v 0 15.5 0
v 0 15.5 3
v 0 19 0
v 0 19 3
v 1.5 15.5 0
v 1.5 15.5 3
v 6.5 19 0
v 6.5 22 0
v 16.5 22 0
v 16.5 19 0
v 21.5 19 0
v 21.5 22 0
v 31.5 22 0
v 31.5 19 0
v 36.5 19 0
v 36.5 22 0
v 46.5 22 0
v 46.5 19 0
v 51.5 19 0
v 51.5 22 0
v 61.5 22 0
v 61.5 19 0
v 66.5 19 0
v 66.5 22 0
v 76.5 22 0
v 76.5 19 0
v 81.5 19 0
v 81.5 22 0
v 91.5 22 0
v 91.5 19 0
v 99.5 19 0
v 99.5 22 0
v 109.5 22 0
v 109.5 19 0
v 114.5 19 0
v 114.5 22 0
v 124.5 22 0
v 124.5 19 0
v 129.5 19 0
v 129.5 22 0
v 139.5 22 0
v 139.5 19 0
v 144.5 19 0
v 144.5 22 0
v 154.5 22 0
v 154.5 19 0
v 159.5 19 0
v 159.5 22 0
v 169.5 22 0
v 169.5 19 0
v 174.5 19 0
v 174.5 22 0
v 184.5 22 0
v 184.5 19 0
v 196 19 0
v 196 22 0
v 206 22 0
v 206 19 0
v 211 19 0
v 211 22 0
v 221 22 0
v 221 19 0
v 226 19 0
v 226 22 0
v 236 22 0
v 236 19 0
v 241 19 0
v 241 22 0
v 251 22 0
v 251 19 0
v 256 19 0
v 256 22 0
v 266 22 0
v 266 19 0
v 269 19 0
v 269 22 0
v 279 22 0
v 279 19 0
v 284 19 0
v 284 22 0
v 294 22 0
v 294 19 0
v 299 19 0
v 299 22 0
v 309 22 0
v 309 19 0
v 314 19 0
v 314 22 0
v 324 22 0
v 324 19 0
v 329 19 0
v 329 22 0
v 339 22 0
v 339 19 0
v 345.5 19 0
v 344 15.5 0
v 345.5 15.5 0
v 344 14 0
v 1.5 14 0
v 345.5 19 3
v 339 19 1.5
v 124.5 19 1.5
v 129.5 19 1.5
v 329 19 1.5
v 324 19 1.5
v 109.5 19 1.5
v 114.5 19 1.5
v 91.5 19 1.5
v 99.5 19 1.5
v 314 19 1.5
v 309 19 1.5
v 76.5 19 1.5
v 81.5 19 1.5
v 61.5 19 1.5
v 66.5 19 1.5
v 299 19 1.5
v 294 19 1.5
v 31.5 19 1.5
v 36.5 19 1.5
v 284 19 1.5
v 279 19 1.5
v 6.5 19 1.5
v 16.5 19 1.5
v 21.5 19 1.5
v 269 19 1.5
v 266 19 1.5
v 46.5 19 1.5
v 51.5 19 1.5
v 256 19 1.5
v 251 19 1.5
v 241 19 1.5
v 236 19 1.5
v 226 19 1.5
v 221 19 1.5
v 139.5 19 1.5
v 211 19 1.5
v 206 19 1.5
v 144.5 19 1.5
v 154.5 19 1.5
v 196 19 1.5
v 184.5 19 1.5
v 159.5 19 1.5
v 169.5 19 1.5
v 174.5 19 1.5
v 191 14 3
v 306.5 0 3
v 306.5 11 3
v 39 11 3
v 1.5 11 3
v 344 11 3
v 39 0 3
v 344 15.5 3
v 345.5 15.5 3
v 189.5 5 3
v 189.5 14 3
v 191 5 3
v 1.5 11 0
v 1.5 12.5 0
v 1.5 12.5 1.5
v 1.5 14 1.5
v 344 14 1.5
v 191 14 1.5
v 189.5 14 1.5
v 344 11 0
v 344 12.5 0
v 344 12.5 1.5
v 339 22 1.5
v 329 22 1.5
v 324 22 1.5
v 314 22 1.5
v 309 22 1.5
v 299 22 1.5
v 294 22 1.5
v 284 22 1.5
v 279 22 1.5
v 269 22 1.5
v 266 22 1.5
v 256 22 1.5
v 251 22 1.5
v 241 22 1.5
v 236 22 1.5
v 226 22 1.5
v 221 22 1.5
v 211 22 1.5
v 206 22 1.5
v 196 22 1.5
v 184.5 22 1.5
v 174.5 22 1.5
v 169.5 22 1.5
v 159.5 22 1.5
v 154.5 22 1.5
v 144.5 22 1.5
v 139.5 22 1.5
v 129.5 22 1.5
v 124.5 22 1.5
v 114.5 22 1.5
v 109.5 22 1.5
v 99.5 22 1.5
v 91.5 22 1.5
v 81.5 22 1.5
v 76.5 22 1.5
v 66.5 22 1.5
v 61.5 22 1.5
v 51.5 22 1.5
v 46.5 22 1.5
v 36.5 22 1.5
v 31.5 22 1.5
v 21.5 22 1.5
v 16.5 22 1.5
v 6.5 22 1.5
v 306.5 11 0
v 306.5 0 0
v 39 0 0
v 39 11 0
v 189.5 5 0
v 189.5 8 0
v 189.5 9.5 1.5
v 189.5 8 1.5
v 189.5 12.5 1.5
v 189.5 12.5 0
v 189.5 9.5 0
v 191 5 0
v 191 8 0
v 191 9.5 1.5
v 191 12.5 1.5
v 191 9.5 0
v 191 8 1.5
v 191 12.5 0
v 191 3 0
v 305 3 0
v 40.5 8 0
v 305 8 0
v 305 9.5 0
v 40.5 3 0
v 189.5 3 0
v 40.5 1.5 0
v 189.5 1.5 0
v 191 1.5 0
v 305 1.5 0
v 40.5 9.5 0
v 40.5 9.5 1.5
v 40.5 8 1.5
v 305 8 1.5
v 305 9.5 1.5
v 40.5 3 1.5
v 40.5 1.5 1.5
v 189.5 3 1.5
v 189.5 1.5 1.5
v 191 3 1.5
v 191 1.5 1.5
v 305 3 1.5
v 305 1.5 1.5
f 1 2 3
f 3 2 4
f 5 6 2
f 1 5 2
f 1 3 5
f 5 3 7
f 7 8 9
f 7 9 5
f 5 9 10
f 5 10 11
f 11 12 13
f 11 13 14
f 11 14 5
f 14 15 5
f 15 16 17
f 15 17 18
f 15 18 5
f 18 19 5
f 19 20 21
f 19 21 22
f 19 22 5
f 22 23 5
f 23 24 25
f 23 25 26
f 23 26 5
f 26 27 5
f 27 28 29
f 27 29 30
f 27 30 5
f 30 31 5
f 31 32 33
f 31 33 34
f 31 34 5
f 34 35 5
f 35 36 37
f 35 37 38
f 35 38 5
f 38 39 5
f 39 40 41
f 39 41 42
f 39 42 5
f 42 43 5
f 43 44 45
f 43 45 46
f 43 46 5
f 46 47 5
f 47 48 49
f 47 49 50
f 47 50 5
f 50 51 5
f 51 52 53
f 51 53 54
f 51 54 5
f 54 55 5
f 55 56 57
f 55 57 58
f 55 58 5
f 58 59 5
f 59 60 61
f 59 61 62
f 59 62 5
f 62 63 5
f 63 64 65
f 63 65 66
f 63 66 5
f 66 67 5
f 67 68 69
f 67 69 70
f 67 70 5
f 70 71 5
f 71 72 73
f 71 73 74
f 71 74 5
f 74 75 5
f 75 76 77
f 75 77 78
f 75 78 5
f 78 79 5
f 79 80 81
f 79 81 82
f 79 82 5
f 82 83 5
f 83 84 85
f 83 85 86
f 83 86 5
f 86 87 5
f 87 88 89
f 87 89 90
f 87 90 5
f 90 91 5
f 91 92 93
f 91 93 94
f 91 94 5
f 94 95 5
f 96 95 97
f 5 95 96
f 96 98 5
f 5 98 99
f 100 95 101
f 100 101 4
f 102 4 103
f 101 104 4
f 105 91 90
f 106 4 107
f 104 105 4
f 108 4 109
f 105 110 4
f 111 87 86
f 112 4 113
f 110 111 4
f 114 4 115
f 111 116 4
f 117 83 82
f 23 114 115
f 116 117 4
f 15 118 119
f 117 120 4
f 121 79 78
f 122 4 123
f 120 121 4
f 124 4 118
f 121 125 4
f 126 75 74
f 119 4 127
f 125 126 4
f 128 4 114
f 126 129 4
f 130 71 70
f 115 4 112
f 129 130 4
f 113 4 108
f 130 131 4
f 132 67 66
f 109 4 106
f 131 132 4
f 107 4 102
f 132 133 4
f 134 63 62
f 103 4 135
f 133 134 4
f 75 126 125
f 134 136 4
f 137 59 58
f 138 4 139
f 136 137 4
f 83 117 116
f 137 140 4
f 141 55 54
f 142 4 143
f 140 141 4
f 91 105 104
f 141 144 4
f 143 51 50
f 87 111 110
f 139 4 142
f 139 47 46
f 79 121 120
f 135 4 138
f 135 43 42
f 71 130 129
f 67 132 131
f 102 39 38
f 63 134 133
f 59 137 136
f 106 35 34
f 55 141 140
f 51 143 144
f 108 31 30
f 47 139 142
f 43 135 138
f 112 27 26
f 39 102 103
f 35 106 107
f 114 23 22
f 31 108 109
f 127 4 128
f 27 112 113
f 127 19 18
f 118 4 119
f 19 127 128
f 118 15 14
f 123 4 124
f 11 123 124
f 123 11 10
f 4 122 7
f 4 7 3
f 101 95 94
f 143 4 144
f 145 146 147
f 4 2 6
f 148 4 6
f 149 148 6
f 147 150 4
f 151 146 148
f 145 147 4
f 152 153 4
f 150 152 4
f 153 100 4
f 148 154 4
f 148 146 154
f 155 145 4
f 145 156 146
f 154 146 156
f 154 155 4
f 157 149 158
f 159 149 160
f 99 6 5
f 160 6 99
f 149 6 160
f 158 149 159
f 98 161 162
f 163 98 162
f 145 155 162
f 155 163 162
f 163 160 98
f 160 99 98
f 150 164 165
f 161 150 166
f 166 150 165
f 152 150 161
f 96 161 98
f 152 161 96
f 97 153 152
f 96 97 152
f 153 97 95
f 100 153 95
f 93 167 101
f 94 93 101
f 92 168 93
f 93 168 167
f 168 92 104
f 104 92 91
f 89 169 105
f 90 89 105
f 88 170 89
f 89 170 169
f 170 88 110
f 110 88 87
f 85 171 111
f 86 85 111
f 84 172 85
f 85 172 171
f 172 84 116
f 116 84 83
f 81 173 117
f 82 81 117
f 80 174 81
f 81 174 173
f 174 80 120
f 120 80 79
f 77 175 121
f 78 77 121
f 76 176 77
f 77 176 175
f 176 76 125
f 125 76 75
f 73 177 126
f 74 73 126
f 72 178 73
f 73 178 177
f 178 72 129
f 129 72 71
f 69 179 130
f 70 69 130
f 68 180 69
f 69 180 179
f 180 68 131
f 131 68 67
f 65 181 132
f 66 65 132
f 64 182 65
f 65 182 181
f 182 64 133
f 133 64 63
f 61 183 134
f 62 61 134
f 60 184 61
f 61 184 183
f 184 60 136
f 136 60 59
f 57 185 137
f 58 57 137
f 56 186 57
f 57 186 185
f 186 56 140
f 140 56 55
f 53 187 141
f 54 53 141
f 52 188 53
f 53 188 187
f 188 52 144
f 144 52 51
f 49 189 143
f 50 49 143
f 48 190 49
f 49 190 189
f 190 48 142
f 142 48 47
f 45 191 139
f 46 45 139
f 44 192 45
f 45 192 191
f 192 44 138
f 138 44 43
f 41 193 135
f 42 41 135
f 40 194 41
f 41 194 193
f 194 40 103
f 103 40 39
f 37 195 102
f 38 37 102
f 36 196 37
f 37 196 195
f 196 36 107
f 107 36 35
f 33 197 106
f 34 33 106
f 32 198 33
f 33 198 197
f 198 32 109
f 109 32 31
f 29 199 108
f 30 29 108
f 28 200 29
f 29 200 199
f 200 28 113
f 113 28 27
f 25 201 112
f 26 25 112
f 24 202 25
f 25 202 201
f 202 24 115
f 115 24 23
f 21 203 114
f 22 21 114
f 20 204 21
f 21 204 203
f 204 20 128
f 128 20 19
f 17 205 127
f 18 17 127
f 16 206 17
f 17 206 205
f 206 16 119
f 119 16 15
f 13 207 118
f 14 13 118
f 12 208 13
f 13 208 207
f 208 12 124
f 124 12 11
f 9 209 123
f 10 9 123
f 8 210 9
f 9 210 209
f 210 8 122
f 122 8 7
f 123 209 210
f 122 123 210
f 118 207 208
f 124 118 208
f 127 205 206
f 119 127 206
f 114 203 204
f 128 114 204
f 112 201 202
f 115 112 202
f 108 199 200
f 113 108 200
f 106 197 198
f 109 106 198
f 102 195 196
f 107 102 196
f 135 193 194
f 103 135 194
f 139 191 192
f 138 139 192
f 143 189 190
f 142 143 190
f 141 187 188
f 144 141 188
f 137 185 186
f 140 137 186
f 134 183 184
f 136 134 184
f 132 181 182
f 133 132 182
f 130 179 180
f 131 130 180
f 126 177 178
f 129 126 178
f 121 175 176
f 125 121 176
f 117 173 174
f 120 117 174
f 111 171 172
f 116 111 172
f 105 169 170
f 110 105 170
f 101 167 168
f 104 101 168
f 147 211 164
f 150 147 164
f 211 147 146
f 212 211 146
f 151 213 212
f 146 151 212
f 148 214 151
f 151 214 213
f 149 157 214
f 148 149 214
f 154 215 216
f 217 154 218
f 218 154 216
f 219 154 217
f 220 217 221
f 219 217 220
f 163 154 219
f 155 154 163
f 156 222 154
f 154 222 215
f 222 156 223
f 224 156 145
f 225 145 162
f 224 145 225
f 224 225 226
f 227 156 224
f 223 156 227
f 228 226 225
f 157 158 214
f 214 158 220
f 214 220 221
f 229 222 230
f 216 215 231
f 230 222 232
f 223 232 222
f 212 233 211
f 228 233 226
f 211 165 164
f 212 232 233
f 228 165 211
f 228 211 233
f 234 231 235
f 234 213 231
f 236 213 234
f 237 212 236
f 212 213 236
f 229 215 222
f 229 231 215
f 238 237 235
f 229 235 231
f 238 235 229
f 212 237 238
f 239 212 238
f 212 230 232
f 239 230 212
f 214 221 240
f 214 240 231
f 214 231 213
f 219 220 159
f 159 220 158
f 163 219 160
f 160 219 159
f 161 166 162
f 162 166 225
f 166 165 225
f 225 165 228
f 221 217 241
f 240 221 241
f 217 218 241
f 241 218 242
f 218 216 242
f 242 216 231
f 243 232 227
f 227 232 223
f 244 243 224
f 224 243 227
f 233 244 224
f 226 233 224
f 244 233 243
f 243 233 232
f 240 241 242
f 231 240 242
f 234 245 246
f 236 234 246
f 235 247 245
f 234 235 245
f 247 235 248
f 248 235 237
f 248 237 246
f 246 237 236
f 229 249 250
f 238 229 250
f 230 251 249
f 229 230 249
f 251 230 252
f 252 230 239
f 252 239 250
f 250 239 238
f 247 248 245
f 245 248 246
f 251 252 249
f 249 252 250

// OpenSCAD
rightHandBoard = 188;
accessoryBoard = 153;
edge = 1.5;

depth = 2 * edge;
width = rightHandBoard + accessoryBoard + 3 * edge;

groove = 1.5;
faceSpace = 5;
mountSpace = 3;
pcbSpace = 5;

notchSpacing = 5;
notchWidth = 10;
notchHeight = 3;

height =
	edge +
	groove +
	faceSpace +
	groove +
	mountSpace +
	groove +
	pcbSpace +
	notchHeight;

faceTop = edge;
mountTop = faceTop + groove + faceSpace;
pcbTop = mountTop + groove + mountSpace;
baseTop = pcbTop + groove + pcbSpace;

rightHandNotchCount = 12;
accessoryNotchCount = 10;
rightHandNotchGap = rightHandBoard - rightHandNotchCount * (notchSpacing + notchWidth);
accessoryNotchGap = accessoryBoard - accessoryNotchCount * (notchSpacing + notchWidth);
notch1Left = edge + notchSpacing;
notch2Left = notch1Left + notchSpacing + notchWidth;
notch3Left = notch2Left + notchSpacing + notchWidth;
notch4Left = notch3Left + notchSpacing + notchWidth;
notch5Left = notch4Left + notchSpacing + notchWidth;
notch6Left = notch5Left + notchSpacing + notchWidth;
notch7Left = notch6Left + rightHandNotchGap + notchWidth;
notch8Left = notch7Left + notchSpacing + notchWidth;
notch9Left = notch8Left + notchSpacing + notchWidth;
notch10Left = notch9Left + notchSpacing + notchWidth;
notch11Left = notch10Left + notchSpacing + notchWidth;
notch12Left = notch11Left + notchSpacing + notchWidth;

notch13Left = notch12Left + notchSpacing + notchWidth + edge + notchSpacing;
notch14Left = notch13Left + notchSpacing + notchWidth;
notch15Left = notch14Left + notchSpacing + notchWidth;
notch16Left = notch15Left + notchSpacing + notchWidth;
notch17Left = notch16Left + notchSpacing + notchWidth;
notch18Left = notch17Left + accessoryNotchGap + notchWidth;
notch19Left = notch18Left + notchSpacing + notchWidth;
notch20Left = notch19Left + notchSpacing + notchWidth;
notch21Left = notch20Left + notchSpacing + notchWidth;
notch22Left = notch21Left + notchSpacing + notchWidth;

module hole(x, y, z, cx, cy, cz)
{
	translate([x, y, z]) cube([cx, cy, cz]);
}

module grooveHole(x, y, cx)
{
	hole(edge + x, y, 0, rightHandBoard - x, groove, edge);
	hole(2 * edge + rightHandBoard, y, 0, cx, groove, edge);
}

module notchHole(x, cx)
{
	hole(x, baseTop, 0, cx, notchHeight, edge);
}

module sideNotch(x)
{
	hole(x, pcbTop - edge, 0, edge, 2 * edge + groove, depth);
}

difference()
{
	cube([width, height, depth]);

	grooveHole(39, faceTop, accessoryBoard - 39);
	grooveHole(39, mountTop, accessoryBoard - 39);
	grooveHole(0, pcbTop, accessoryBoard);

	hole(0, baseTop, edge, width, notchHeight, edge);
	notchHole(0, notch1Left);
	notchHole(notch1Left + notchWidth, notchSpacing);
	notchHole(notch2Left + notchWidth, notchSpacing);
	notchHole(notch3Left + notchWidth, notchSpacing);
	notchHole(notch4Left + notchWidth, notchSpacing);
	notchHole(notch5Left + notchWidth, notchSpacing);
	notchHole(notch6Left + notchWidth, rightHandNotchGap);
	notchHole(notch7Left + notchWidth, notchSpacing);
	notchHole(notch8Left + notchWidth, notchSpacing);
	notchHole(notch9Left + notchWidth, notchSpacing);
	notchHole(notch10Left + notchWidth, notchSpacing);
	notchHole(notch11Left + notchWidth, notchSpacing);
	notchHole(notch12Left + notchWidth, 2 * notchSpacing + edge);
	notchHole(notch13Left + notchWidth, notchSpacing);
	notchHole(notch14Left + notchWidth, notchSpacing);
	notchHole(notch15Left + notchWidth, notchSpacing);
	notchHole(notch16Left + notchWidth, notchSpacing);
	notchHole(notch17Left + notchWidth, accessoryNotchGap);
	notchHole(notch18Left + notchWidth, notchSpacing);
	notchHole(notch19Left + notchWidth, notchSpacing);
	notchHole(notch20Left + notchWidth, notchSpacing);
	notchHole(notch21Left + notchWidth, notchSpacing);
	notchHole(notch22Left + notchWidth, notchSpacing + edge);

	sideNotch(0);
	sideNotch(width - edge);

	hole(0, 0, 0, 39, pcbTop - edge, depth);
	hole(width - 39, 0, 0, 39, pcbTop - edge, depth);

	hole(edge + rightHandBoard, 5, 0, edge, 9, depth);
}
